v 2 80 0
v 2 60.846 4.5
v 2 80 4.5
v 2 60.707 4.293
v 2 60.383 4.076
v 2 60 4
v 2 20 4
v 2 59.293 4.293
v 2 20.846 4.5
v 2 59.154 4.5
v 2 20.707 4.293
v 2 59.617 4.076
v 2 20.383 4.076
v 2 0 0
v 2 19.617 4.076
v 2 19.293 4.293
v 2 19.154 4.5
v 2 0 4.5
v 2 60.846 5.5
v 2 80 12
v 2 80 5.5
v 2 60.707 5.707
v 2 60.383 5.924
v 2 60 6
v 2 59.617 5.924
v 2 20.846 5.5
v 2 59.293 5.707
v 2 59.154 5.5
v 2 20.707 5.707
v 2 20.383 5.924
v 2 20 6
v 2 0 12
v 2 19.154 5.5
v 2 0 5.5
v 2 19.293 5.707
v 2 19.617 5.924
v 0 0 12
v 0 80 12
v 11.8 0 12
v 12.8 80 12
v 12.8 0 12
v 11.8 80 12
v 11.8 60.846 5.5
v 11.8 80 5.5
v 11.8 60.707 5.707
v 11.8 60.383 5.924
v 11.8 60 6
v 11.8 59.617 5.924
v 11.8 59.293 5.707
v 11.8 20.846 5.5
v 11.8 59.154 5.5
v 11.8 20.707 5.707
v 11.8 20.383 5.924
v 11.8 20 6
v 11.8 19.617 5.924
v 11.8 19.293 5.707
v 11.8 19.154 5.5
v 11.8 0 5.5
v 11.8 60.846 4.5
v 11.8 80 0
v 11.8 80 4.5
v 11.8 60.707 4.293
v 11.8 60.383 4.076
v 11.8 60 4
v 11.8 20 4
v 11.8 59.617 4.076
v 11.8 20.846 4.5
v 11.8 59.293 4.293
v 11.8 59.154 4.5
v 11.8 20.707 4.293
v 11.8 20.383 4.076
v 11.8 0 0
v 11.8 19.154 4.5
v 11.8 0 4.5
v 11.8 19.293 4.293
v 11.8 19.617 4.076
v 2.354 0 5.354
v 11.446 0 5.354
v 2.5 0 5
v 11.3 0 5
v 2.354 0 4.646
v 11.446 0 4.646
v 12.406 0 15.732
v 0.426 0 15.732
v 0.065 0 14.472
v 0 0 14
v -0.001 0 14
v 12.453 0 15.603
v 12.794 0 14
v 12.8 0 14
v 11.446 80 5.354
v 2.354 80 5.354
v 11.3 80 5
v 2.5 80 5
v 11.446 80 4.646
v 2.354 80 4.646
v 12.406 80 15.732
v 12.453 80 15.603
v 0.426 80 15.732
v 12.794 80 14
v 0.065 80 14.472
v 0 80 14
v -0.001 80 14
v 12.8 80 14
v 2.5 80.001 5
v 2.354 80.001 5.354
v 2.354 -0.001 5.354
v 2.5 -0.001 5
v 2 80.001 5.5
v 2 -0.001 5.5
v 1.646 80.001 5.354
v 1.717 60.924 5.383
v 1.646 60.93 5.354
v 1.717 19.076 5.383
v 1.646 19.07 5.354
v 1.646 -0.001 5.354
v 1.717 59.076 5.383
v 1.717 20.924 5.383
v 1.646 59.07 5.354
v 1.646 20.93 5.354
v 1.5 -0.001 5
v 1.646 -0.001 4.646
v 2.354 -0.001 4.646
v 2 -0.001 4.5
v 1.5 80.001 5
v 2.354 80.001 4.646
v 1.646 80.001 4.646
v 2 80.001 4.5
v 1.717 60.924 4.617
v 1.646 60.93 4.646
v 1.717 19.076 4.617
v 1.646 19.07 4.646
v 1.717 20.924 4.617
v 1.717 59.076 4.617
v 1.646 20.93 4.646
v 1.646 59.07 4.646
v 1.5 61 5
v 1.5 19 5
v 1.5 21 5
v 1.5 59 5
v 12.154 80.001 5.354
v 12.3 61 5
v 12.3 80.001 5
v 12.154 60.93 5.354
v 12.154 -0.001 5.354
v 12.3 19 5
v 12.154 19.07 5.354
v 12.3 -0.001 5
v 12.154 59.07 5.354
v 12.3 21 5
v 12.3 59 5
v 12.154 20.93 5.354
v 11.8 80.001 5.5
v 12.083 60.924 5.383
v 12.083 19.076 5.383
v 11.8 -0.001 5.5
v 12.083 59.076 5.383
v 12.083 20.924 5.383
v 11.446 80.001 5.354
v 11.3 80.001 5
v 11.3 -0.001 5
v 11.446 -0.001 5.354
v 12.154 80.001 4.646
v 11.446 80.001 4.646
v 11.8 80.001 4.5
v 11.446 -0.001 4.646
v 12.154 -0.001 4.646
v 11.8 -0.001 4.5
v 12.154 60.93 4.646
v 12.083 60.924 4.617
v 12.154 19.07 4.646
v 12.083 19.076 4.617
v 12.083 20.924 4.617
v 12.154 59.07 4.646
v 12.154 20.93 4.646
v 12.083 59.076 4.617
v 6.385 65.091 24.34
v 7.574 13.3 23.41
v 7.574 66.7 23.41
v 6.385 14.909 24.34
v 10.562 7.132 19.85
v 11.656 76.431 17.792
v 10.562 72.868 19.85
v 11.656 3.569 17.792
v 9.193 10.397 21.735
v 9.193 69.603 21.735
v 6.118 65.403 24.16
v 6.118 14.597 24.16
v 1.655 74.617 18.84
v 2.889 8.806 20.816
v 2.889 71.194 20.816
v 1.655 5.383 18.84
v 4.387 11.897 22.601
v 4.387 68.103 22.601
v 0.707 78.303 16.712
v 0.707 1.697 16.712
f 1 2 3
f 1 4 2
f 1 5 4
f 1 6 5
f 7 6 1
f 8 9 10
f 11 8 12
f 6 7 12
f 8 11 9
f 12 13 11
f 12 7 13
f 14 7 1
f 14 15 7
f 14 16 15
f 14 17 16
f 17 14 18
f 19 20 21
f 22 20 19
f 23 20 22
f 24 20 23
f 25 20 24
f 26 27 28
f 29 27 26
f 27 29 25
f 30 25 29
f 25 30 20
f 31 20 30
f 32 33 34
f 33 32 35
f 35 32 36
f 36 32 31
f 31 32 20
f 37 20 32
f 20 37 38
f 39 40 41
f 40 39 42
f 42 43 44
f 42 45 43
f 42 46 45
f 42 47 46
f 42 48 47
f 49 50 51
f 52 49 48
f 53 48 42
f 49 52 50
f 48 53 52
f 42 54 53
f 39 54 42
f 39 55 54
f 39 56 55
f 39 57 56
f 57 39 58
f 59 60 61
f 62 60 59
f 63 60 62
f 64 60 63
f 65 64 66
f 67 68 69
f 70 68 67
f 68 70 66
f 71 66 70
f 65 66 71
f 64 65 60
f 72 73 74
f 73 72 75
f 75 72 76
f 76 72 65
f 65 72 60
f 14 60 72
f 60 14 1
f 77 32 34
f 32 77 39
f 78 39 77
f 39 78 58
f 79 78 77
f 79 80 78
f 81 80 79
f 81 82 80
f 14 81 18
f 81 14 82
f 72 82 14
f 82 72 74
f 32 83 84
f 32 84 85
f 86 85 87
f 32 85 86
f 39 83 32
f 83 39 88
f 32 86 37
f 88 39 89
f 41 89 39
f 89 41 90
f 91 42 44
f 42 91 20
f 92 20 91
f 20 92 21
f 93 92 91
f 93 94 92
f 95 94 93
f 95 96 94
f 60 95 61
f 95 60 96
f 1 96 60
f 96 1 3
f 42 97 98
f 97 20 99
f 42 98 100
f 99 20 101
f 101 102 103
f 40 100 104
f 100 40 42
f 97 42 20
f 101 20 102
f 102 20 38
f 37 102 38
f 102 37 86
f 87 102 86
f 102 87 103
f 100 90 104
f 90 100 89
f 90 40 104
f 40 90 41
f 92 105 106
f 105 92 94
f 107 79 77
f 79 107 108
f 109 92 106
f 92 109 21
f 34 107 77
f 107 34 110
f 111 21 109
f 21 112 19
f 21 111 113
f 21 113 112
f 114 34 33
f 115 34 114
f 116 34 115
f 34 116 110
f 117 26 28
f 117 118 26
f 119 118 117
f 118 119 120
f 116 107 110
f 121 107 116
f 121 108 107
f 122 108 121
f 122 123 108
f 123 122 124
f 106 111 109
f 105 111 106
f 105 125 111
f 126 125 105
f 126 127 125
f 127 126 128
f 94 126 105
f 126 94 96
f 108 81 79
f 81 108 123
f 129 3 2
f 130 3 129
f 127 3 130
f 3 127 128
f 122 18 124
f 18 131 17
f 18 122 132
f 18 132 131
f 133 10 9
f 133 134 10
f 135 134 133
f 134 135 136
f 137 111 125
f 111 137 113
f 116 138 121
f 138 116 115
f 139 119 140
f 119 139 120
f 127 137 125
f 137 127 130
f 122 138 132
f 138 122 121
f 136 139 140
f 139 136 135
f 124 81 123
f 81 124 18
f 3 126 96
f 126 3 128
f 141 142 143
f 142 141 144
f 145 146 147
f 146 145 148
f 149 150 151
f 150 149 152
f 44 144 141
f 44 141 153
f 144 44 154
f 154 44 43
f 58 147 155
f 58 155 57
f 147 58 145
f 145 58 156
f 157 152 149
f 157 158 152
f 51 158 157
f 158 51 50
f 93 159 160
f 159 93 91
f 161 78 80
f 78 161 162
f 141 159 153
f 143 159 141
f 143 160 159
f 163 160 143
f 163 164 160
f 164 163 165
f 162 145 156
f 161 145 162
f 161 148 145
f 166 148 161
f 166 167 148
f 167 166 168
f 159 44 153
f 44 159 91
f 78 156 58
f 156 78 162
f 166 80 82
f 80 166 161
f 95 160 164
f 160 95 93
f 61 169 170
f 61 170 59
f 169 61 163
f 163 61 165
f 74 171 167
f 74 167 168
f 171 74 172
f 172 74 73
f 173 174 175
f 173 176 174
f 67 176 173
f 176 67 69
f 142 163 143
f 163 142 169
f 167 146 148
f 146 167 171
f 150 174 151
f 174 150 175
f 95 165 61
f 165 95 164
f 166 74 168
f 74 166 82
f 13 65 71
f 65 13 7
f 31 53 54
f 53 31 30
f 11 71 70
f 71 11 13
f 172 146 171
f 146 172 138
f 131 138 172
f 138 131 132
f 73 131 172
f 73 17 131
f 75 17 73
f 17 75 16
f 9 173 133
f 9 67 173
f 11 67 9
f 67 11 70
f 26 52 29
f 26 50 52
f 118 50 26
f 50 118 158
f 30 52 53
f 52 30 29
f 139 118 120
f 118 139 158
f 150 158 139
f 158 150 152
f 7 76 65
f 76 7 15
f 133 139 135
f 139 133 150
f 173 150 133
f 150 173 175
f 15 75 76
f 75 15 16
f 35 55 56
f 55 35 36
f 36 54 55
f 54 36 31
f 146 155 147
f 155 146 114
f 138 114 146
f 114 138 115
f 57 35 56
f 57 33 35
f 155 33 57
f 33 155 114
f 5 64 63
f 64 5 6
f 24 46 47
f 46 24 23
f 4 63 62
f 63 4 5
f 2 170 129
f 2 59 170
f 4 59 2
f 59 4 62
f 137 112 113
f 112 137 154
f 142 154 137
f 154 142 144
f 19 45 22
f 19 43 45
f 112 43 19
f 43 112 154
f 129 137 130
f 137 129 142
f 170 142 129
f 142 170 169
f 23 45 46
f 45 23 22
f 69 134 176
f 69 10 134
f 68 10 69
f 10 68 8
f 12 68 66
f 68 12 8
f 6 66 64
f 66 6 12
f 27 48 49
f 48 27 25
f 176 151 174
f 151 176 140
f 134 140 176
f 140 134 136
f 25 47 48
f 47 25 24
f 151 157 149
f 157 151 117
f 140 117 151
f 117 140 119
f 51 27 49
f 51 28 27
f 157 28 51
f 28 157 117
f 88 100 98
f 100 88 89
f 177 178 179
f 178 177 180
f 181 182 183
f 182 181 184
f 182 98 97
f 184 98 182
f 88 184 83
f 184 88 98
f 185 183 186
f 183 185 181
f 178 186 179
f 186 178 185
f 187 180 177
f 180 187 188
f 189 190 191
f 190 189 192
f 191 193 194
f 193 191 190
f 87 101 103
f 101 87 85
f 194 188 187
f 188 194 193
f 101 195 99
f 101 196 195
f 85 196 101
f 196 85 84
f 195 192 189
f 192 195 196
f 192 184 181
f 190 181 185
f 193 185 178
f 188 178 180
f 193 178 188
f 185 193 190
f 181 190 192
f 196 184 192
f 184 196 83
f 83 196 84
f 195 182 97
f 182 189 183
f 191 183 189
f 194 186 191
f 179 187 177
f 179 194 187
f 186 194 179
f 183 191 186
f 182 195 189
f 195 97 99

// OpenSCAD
// Improve the back sliding screen doors

echo(version=version());

$fa = 8; $fs = 0.4;
eps = .001;
nozzle = 0.8; // 0.4mm
step = 0.18; // 0.12mm



module body () {
    translate([2, 0, 0]) cube([9.8, 80, 12]); // base
    translate([0, 0, 12]) cube([12.8, 80, 2]); // top jut
    translate([2, 80+eps, 5]) rotate([90, 0, 0]) cylinder(d=1, 80+2*eps); // side rail
    translate([11.8, 80+eps, 5]) rotate([90, 0, 0]) cylinder(d=1, 80+2*eps); // side rail
}

difference () {
    body();
    translate([0, 20, 5]) rotate([0, 90, 0]) cylinder(d=2, 14); // side screw hole
    translate([0, 60, 5]) rotate([0, 90, 0]) cylinder(d=2, 14); // side screw hole
}

module cone () {
    difference () {
        intersection () {
            translate([-10, 0, -3]) rotate([-90, 0, 0]) cylinder(r=16.7, 80);
            translate([10, 0, -3]) rotate([-90, 0, 0]) cylinder(r=16.7, 80);
        }
        translate([-100/2, -eps, -100]) cube([100, 80+2*eps, 100]);
    }
}


difference () {
    translate([6.4, 0, 14]) cone();
    translate([-2, -3, 14]) rotate([30, 0, 0])  cube([16, 25, 15]);
    translate([-2, 83, 14]) rotate([60, 0, 0])  cube([16, 25, 25]);
}





// translate([0, 0, 14]) cube([12.8, 80, 10]);
//module long_bar () {
//    translate([-2, -80, 0]) cube([4, 80, 1.8]); // horizontal brace
//    translate([-0.8, -80, 0]) cube([1.6, 80, 3.96]); // Vertical brace
//    translate([-2, -10, 0]) cube([4, 10, 3.96]); // rectangele support at top.
//}
//
//module stake () {
//    difference () {
//        long_bar();
//        translate([-5, -80, 0]) rotate([30, 0, 0])  cube([10, 10, 10]); // Angle cut.
//    }
//}
//
//// Top structure
//module top_structure () {
//    difference () {
//        translate([0, 20, 0]) cylinder(3.96, r=20);
//        translate([0, 20, 0-eps]) cylinder(3.96+eps*2, r=16);
//        translate([-22.4-20, 15, 0-eps]) cube([(22.4+20)*2, 25, 3.96+eps*2]);
//    }
//}
//
//module part () {
//    stake();
//    top_structure();
//}
//
//module two_parts () {
//    part();
//    translate([10, -90, 0]) rotate([0, 0, 180]) part();
//}
//
//module four_parts () {
//    two_parts();
//    translate([25, 20, 0]) two_parts();
//}
//
//part();
////four_parts();
